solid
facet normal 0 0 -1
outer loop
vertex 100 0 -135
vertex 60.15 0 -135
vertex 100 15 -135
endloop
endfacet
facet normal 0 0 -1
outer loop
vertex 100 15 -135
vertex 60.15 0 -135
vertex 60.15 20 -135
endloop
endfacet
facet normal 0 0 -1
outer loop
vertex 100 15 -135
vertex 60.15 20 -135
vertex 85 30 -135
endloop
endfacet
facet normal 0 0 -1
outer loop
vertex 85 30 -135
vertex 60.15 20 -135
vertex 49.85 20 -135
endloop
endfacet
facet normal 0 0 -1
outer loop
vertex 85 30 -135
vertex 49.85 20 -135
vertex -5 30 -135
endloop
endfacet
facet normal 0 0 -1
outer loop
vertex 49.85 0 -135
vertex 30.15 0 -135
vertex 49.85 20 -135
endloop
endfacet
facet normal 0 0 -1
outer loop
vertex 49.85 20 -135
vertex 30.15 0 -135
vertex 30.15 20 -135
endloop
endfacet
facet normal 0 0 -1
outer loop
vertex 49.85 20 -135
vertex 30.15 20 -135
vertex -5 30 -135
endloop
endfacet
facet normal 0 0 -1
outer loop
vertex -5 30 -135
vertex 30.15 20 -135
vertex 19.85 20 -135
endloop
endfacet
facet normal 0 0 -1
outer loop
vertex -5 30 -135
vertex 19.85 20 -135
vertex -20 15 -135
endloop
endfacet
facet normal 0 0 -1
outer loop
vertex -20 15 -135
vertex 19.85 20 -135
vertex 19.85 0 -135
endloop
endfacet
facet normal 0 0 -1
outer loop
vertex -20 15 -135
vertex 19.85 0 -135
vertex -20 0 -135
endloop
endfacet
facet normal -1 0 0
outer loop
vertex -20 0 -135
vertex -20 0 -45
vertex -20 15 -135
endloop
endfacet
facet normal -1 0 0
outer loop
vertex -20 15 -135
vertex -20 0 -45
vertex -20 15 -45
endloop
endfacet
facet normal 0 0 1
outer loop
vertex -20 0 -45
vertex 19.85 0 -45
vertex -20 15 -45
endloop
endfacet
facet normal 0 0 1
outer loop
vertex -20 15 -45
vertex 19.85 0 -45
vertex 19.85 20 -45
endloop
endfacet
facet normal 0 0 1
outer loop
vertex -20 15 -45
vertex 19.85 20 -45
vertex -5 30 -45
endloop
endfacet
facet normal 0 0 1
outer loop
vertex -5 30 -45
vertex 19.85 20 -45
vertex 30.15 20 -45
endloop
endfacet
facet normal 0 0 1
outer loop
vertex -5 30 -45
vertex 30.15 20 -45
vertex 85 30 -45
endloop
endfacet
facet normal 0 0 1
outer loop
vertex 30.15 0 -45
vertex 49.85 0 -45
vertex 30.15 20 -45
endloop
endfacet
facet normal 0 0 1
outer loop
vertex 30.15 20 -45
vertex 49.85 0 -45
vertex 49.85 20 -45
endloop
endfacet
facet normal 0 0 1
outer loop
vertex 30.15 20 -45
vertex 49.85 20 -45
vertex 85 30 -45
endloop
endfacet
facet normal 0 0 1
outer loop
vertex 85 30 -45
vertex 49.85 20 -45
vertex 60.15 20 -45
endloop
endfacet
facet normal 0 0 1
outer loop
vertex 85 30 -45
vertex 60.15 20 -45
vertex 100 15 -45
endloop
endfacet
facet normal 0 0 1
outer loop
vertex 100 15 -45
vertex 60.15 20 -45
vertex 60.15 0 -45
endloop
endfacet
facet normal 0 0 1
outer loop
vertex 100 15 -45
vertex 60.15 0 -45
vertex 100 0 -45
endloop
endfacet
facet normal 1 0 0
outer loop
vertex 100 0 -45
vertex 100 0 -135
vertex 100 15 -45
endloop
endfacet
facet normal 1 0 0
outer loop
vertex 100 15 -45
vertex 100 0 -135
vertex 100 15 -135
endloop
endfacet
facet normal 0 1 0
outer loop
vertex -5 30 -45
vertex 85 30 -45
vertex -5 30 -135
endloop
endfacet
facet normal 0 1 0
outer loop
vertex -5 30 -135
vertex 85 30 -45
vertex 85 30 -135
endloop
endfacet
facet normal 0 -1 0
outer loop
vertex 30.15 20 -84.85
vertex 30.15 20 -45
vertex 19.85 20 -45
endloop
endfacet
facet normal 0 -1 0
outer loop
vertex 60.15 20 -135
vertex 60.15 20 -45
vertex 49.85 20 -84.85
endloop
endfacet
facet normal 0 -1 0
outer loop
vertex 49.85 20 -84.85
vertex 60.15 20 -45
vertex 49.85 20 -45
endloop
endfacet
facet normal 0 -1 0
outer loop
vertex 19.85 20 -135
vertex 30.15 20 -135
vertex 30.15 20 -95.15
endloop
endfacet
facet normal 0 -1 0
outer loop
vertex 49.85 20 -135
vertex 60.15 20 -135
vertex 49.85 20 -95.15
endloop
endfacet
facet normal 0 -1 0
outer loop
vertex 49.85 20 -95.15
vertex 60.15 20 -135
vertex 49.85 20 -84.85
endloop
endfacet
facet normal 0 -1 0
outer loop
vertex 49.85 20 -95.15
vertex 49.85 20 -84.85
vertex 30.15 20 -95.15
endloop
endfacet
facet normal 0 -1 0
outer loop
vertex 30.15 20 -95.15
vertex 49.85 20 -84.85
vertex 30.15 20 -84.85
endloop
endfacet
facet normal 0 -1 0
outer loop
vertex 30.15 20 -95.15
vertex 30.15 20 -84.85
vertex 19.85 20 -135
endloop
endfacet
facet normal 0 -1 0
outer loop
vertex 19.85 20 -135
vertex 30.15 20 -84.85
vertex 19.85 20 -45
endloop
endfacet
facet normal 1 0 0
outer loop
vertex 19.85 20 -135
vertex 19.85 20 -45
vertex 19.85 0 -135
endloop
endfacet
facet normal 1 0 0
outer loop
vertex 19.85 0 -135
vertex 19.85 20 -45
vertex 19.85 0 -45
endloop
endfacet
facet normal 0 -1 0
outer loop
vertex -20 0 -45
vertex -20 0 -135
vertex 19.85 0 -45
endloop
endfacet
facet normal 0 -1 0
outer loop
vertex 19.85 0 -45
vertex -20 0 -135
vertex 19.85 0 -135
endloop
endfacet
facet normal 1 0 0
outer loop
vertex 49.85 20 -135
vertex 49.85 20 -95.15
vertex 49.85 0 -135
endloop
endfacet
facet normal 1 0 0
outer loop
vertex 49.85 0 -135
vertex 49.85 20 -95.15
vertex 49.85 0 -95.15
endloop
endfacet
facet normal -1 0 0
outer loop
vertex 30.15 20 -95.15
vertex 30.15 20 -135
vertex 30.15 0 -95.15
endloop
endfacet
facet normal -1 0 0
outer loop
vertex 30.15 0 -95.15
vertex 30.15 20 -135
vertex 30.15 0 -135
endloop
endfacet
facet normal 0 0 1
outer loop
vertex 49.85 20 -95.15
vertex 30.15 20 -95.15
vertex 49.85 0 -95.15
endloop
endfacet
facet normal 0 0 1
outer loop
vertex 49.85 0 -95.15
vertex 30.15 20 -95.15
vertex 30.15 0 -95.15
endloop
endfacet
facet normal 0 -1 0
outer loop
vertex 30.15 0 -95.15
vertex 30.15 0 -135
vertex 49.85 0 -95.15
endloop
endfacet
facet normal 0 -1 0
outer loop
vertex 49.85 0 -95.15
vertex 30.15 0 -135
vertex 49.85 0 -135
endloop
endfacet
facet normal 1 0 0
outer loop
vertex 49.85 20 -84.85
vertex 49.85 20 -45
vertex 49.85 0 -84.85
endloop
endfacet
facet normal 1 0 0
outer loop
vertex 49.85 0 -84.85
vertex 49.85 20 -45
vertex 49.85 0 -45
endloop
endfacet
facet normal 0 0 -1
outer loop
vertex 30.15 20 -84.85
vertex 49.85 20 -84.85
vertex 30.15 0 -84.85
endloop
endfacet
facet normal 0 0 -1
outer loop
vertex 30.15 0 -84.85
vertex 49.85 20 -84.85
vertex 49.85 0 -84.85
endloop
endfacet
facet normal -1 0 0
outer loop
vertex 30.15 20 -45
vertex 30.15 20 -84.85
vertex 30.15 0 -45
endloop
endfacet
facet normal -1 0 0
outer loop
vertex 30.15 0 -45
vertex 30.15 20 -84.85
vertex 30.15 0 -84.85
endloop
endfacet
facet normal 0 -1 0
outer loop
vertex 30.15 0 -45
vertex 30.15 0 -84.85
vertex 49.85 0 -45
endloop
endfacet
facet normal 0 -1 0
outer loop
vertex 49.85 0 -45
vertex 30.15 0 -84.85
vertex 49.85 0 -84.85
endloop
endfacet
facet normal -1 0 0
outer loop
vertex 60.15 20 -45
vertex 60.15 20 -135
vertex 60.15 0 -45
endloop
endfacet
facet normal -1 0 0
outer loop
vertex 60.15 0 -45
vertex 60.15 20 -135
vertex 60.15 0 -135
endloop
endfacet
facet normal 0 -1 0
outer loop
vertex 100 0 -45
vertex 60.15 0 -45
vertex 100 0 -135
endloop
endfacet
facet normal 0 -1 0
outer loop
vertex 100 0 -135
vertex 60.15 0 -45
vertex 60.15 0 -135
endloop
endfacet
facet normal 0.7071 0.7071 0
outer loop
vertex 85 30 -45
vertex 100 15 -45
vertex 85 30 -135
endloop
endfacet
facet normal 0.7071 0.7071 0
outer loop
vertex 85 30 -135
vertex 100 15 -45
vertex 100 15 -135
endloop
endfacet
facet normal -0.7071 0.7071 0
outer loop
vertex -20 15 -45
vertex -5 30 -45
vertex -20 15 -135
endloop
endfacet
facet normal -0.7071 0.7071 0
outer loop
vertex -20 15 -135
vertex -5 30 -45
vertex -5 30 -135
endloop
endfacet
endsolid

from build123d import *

# Parameters (mm, degrees)
SKETCH2_W             = 39.85
SKETCH2_H             = 90
BOSS_EXTRUDE1_DEPTH   = 20
BOSS_EXTRUDE1_2_DEPTH = 20
BOSS_EXTRUDE1_3_DEPTH = 20
BOSS_EXTRUDE1_4_DEPTH = 20
SKETCH3_W             = 120
SKETCH3_H             = 90
BOSS_EXTRUDE2_DEPTH   = 10
CUT_EXTRUDE2_DEPTH    = 114


with BuildPart() as part:
    # Sketch2 → Boss-Extrude1 (new body)
    with BuildSketch(Plane(origin=(0, 0, 0), x_dir=(1, 0, 0), z_dir=(0, 1, 0))):
        with Locations((-0.075, 90)):
            Rectangle(SKETCH2_W, SKETCH2_H)
    extrude(amount=BOSS_EXTRUDE1_DEPTH)



with BuildPart() as body_2:
    # Sketch2 → Boss-Extrude1 2 (new body)
    with BuildSketch(Plane(origin=(0, 0, 0), x_dir=(1, 0, 0), z_dir=(0, 1, 0))):
        Polygon((49.85, 95.15), (49.85, 134.85), (49.85, 135), (30.15, 135), (30.15, 134.85), (30.15, 95.15), align=None)
    extrude(amount=BOSS_EXTRUDE1_2_DEPTH)


with BuildPart() as body_3:
    # Sketch2 → Boss-Extrude1 3 (new body)
    with BuildSketch(Plane(origin=(0, 0, 0), x_dir=(1, 0, 0), z_dir=(0, 1, 0))):
        Polygon((49.85, 45.15), (49.85, 45), (30.15, 45), (30.15, 45.15), (30.15, 84.85), (49.85, 84.85), align=None)
    extrude(amount=BOSS_EXTRUDE1_3_DEPTH)


with BuildPart() as body_4:
    # Sketch2 → Boss-Extrude1 4 (new body)
    with BuildSketch(Plane(origin=(0, 0, 0), x_dir=(1, 0, 0), z_dir=(0, 1, 0))):
        with Locations((80.075, 90)):
            Rectangle(SKETCH2_W, SKETCH2_H)
    extrude(amount=BOSS_EXTRUDE1_4_DEPTH)


with BuildPart() as part_1:
    add(part.part)

    add(body_2.part)  # Boss-Extrude2 merges body 2

    add(body_3.part)  # Boss-Extrude2 merges body 3

    add(body_4.part)  # Boss-Extrude2 merges body 4
    # Sketch3 → Boss-Extrude2 (add)
    with BuildSketch(Plane(origin=(0, 20, 0), x_dir=(1, 0, 0), z_dir=(0, 1, 0))):
        with Locations((40, 90)):
            Rectangle(SKETCH3_W, SKETCH3_H)
    extrude(amount=BOSS_EXTRUDE2_DEPTH)

    # Sketch5 → Cut-Extrude2 (cut)
    with BuildSketch(Plane.XY.offset(-45)):
        Polygon((-20, 30), (-20, 15), (-5, 30), align=None)
        Polygon((100, 30), (85, 30), (100, 15), align=None)
    extrude(amount=-CUT_EXTRUDE2_DEPTH, mode=Mode.SUBTRACT)


solid = part_1.part
